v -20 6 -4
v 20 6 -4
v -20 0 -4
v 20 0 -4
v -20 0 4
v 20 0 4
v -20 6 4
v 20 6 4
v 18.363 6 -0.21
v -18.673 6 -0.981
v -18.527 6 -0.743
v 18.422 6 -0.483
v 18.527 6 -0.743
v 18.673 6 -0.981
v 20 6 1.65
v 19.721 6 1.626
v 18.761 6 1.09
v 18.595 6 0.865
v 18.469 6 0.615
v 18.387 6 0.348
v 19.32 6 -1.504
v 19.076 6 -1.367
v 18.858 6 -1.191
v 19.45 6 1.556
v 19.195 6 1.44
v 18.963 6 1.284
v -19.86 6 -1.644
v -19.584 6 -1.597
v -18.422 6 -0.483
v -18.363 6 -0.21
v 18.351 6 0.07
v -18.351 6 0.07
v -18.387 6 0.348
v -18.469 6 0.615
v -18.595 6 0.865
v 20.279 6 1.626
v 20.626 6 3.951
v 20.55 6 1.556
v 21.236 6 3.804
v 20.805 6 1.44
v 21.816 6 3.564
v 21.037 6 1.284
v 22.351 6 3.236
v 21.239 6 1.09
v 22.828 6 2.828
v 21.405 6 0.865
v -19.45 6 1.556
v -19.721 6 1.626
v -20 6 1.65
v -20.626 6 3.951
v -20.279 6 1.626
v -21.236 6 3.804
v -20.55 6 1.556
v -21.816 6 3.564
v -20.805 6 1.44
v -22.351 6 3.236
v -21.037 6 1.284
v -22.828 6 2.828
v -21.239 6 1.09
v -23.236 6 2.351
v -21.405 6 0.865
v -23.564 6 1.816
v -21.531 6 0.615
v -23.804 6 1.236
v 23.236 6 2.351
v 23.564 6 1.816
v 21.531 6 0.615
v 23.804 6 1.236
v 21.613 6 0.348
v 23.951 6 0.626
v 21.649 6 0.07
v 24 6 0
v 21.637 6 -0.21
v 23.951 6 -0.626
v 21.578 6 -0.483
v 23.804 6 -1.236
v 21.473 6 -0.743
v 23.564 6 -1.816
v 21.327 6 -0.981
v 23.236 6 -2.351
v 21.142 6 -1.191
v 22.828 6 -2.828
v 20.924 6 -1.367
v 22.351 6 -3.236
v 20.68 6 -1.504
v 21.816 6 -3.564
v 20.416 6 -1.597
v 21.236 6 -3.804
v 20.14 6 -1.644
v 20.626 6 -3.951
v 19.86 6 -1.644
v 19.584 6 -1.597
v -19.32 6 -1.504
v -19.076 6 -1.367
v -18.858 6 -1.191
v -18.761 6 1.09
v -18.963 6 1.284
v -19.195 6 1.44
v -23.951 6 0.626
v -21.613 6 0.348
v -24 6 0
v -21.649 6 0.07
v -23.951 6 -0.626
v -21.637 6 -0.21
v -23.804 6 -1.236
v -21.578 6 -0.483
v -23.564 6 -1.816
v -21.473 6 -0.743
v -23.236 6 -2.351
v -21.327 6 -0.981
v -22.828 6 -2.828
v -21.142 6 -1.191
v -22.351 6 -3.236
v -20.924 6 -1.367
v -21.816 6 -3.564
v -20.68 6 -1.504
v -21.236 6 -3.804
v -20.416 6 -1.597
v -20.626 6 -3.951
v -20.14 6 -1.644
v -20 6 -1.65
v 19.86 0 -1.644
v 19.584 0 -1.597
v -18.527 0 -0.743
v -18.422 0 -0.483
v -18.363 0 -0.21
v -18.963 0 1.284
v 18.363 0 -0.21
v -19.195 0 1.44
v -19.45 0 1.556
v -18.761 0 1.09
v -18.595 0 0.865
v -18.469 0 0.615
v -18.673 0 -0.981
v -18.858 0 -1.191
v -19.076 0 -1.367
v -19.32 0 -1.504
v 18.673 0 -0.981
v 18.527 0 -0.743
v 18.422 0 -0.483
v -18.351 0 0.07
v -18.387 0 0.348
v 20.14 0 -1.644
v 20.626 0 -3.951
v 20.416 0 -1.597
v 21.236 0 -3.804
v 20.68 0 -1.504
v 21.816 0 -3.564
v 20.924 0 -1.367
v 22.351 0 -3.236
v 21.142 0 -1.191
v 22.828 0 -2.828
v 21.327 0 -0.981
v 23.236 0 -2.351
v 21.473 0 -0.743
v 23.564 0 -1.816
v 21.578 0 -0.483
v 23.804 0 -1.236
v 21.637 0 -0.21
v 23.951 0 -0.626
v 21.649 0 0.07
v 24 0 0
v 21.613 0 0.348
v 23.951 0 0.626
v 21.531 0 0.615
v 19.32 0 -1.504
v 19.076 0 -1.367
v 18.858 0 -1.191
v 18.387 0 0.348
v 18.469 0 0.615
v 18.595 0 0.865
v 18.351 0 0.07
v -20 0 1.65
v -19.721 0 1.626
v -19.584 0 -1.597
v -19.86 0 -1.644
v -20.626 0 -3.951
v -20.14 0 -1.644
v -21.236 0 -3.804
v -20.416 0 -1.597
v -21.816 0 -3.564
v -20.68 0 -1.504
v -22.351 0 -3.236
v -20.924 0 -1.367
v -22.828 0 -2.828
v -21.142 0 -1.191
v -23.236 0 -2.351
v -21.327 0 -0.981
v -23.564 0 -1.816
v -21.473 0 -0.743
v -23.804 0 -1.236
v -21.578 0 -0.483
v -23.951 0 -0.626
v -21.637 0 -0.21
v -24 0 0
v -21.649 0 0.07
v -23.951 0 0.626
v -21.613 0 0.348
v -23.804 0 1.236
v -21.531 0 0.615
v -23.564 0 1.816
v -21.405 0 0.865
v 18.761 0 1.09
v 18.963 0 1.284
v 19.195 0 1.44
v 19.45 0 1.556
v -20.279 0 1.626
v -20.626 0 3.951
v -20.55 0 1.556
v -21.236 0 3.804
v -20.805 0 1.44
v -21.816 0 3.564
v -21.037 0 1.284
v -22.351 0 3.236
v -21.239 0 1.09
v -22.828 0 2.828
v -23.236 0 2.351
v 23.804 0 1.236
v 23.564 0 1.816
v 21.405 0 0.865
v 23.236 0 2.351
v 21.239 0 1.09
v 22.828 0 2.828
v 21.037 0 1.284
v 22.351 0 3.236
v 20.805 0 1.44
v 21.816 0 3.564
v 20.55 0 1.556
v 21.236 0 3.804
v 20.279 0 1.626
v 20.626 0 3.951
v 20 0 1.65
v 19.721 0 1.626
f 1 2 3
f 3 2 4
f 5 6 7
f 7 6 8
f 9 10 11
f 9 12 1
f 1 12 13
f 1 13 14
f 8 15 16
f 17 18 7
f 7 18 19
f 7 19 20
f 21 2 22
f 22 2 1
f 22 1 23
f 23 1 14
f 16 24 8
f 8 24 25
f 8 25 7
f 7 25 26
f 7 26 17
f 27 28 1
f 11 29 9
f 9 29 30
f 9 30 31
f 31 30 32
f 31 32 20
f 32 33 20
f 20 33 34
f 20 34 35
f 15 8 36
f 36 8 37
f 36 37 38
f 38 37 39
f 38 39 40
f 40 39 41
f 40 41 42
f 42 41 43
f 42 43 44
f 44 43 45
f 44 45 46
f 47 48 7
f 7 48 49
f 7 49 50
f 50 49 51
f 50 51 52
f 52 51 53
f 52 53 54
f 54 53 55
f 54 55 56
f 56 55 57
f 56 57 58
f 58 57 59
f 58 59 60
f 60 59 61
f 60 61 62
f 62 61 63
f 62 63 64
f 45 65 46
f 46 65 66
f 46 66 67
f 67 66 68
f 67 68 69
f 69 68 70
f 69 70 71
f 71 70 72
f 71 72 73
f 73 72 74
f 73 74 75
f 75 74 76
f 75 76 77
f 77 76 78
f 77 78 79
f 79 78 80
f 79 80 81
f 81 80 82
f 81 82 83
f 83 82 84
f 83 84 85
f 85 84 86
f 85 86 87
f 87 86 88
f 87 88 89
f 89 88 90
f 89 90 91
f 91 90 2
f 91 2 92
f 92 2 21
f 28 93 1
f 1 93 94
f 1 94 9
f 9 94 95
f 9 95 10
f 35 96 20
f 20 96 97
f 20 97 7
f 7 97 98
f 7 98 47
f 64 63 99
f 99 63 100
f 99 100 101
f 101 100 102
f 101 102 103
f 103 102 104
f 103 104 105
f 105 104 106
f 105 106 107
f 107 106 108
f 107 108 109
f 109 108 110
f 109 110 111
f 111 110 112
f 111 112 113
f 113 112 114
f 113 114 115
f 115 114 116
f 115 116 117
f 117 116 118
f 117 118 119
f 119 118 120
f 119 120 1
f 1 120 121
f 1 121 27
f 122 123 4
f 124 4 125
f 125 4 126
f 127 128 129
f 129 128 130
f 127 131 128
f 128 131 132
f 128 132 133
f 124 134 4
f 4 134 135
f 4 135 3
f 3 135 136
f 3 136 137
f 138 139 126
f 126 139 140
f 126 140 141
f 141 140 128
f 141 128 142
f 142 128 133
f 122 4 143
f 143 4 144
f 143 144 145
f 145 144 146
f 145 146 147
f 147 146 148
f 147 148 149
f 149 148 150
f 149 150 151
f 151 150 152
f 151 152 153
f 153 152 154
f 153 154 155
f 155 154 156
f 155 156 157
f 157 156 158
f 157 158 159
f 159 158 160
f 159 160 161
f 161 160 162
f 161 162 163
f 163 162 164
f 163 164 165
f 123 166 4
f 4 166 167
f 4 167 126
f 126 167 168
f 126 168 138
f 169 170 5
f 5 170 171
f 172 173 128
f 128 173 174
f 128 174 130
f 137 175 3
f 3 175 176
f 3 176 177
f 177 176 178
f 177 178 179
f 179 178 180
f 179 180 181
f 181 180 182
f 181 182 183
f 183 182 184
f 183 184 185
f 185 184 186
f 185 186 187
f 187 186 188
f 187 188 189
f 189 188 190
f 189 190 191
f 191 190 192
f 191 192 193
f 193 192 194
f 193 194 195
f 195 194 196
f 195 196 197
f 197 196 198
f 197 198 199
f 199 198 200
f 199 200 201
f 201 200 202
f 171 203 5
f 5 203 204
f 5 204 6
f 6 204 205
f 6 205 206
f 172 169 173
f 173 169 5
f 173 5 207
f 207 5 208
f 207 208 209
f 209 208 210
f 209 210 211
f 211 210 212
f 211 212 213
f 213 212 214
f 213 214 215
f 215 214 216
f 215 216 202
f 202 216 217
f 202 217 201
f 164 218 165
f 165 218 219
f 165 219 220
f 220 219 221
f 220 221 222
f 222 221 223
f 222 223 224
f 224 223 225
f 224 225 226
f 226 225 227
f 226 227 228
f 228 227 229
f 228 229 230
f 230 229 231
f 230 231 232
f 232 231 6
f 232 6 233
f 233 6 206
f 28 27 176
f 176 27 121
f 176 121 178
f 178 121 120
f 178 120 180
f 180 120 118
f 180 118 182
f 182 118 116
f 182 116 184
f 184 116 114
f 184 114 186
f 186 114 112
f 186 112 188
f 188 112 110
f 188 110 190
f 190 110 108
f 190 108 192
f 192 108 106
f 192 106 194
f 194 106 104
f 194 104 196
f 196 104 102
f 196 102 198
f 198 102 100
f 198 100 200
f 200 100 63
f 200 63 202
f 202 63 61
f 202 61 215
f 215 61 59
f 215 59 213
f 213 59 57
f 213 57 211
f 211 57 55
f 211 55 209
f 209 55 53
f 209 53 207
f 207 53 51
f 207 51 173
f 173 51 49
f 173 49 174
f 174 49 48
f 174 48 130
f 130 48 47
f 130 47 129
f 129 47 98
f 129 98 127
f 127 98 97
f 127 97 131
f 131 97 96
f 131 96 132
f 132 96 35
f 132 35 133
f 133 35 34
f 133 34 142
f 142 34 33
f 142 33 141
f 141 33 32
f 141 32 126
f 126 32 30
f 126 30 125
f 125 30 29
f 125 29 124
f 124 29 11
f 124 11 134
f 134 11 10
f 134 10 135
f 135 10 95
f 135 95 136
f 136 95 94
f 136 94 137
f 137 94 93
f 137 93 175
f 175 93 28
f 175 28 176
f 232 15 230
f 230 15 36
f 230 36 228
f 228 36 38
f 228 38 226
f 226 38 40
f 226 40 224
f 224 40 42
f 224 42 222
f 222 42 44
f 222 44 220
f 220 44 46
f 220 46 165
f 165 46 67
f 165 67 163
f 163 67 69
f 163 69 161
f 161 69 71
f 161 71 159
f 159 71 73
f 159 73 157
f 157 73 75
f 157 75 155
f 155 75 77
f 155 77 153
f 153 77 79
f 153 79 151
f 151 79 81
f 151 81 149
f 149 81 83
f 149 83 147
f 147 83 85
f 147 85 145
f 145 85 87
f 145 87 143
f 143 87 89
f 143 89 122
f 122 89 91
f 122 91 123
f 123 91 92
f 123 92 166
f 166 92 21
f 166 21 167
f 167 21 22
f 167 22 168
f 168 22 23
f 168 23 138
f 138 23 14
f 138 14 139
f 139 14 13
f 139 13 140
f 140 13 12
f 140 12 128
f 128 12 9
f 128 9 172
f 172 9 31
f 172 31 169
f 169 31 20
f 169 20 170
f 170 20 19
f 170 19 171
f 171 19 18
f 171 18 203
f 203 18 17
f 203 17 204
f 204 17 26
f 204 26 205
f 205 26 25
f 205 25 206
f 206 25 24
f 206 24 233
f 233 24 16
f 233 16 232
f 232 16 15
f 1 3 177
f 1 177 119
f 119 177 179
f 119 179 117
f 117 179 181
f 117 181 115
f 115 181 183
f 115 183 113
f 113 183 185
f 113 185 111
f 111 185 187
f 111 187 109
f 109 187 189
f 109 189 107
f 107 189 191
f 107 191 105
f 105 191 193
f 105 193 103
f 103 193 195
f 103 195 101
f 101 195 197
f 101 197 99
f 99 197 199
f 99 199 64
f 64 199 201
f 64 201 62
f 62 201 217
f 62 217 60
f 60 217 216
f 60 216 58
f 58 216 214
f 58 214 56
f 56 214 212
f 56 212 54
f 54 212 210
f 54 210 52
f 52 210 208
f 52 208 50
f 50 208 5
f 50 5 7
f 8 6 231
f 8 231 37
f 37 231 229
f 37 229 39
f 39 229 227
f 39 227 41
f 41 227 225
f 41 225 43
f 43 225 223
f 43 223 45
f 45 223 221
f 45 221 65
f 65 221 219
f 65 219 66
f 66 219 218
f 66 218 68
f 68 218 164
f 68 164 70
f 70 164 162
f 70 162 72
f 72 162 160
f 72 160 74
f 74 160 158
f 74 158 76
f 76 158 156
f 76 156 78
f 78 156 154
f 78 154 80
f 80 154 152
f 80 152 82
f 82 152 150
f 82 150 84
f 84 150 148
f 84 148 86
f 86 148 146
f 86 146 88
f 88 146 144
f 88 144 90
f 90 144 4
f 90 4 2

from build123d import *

# Parameters (mm, degrees)
SKETCH_1_W          = 48
SKETCH_1_H          = 8
EXTRUDE_1_DEPTH     = 6
SKETCH_2_R          = 1.65
CUT_EXTRUDE_1_DEPTH = 15
FILLET_1_R          = 4


with BuildPart() as part:
    # 草图1 → 凸台-拉伸1 (new body)
    with BuildSketch(Plane(origin=(0, 0, 0), x_dir=(1, 0, 0), z_dir=(0, 1, 0))):
        Rectangle(SKETCH_1_W, SKETCH_1_H)
    extrude(amount=EXTRUDE_1_DEPTH)

    # 草图2 → 切除-拉伸1 (cut)
    with BuildSketch(Plane(origin=(0, 6, 0), x_dir=(1, 0, 0), z_dir=(0, 1, 0))):
        with Locations(Location((20, 0, 0), (0, 0, 270))):
            Circle(SKETCH_2_R)
        with Locations(Location((-20, 0, 0), (0, 0, 270))):
            Circle(SKETCH_2_R)
    extrude(amount=-CUT_EXTRUDE_1_DEPTH, mode=Mode.SUBTRACT)

    # 圆角1
    fillet_1_edges = [part.edges().sort_by_distance(p)[0] for p in [
        (-24, 3, 4),
        (-24, 3, -4),
        (24, 3, -4),
        (24, 3, 4),
    ]]
    fillet(fillet_1_edges, radius=FILLET_1_R - 0.0001)  # a hair under: the kernel refuses the full size


solid = part.part
